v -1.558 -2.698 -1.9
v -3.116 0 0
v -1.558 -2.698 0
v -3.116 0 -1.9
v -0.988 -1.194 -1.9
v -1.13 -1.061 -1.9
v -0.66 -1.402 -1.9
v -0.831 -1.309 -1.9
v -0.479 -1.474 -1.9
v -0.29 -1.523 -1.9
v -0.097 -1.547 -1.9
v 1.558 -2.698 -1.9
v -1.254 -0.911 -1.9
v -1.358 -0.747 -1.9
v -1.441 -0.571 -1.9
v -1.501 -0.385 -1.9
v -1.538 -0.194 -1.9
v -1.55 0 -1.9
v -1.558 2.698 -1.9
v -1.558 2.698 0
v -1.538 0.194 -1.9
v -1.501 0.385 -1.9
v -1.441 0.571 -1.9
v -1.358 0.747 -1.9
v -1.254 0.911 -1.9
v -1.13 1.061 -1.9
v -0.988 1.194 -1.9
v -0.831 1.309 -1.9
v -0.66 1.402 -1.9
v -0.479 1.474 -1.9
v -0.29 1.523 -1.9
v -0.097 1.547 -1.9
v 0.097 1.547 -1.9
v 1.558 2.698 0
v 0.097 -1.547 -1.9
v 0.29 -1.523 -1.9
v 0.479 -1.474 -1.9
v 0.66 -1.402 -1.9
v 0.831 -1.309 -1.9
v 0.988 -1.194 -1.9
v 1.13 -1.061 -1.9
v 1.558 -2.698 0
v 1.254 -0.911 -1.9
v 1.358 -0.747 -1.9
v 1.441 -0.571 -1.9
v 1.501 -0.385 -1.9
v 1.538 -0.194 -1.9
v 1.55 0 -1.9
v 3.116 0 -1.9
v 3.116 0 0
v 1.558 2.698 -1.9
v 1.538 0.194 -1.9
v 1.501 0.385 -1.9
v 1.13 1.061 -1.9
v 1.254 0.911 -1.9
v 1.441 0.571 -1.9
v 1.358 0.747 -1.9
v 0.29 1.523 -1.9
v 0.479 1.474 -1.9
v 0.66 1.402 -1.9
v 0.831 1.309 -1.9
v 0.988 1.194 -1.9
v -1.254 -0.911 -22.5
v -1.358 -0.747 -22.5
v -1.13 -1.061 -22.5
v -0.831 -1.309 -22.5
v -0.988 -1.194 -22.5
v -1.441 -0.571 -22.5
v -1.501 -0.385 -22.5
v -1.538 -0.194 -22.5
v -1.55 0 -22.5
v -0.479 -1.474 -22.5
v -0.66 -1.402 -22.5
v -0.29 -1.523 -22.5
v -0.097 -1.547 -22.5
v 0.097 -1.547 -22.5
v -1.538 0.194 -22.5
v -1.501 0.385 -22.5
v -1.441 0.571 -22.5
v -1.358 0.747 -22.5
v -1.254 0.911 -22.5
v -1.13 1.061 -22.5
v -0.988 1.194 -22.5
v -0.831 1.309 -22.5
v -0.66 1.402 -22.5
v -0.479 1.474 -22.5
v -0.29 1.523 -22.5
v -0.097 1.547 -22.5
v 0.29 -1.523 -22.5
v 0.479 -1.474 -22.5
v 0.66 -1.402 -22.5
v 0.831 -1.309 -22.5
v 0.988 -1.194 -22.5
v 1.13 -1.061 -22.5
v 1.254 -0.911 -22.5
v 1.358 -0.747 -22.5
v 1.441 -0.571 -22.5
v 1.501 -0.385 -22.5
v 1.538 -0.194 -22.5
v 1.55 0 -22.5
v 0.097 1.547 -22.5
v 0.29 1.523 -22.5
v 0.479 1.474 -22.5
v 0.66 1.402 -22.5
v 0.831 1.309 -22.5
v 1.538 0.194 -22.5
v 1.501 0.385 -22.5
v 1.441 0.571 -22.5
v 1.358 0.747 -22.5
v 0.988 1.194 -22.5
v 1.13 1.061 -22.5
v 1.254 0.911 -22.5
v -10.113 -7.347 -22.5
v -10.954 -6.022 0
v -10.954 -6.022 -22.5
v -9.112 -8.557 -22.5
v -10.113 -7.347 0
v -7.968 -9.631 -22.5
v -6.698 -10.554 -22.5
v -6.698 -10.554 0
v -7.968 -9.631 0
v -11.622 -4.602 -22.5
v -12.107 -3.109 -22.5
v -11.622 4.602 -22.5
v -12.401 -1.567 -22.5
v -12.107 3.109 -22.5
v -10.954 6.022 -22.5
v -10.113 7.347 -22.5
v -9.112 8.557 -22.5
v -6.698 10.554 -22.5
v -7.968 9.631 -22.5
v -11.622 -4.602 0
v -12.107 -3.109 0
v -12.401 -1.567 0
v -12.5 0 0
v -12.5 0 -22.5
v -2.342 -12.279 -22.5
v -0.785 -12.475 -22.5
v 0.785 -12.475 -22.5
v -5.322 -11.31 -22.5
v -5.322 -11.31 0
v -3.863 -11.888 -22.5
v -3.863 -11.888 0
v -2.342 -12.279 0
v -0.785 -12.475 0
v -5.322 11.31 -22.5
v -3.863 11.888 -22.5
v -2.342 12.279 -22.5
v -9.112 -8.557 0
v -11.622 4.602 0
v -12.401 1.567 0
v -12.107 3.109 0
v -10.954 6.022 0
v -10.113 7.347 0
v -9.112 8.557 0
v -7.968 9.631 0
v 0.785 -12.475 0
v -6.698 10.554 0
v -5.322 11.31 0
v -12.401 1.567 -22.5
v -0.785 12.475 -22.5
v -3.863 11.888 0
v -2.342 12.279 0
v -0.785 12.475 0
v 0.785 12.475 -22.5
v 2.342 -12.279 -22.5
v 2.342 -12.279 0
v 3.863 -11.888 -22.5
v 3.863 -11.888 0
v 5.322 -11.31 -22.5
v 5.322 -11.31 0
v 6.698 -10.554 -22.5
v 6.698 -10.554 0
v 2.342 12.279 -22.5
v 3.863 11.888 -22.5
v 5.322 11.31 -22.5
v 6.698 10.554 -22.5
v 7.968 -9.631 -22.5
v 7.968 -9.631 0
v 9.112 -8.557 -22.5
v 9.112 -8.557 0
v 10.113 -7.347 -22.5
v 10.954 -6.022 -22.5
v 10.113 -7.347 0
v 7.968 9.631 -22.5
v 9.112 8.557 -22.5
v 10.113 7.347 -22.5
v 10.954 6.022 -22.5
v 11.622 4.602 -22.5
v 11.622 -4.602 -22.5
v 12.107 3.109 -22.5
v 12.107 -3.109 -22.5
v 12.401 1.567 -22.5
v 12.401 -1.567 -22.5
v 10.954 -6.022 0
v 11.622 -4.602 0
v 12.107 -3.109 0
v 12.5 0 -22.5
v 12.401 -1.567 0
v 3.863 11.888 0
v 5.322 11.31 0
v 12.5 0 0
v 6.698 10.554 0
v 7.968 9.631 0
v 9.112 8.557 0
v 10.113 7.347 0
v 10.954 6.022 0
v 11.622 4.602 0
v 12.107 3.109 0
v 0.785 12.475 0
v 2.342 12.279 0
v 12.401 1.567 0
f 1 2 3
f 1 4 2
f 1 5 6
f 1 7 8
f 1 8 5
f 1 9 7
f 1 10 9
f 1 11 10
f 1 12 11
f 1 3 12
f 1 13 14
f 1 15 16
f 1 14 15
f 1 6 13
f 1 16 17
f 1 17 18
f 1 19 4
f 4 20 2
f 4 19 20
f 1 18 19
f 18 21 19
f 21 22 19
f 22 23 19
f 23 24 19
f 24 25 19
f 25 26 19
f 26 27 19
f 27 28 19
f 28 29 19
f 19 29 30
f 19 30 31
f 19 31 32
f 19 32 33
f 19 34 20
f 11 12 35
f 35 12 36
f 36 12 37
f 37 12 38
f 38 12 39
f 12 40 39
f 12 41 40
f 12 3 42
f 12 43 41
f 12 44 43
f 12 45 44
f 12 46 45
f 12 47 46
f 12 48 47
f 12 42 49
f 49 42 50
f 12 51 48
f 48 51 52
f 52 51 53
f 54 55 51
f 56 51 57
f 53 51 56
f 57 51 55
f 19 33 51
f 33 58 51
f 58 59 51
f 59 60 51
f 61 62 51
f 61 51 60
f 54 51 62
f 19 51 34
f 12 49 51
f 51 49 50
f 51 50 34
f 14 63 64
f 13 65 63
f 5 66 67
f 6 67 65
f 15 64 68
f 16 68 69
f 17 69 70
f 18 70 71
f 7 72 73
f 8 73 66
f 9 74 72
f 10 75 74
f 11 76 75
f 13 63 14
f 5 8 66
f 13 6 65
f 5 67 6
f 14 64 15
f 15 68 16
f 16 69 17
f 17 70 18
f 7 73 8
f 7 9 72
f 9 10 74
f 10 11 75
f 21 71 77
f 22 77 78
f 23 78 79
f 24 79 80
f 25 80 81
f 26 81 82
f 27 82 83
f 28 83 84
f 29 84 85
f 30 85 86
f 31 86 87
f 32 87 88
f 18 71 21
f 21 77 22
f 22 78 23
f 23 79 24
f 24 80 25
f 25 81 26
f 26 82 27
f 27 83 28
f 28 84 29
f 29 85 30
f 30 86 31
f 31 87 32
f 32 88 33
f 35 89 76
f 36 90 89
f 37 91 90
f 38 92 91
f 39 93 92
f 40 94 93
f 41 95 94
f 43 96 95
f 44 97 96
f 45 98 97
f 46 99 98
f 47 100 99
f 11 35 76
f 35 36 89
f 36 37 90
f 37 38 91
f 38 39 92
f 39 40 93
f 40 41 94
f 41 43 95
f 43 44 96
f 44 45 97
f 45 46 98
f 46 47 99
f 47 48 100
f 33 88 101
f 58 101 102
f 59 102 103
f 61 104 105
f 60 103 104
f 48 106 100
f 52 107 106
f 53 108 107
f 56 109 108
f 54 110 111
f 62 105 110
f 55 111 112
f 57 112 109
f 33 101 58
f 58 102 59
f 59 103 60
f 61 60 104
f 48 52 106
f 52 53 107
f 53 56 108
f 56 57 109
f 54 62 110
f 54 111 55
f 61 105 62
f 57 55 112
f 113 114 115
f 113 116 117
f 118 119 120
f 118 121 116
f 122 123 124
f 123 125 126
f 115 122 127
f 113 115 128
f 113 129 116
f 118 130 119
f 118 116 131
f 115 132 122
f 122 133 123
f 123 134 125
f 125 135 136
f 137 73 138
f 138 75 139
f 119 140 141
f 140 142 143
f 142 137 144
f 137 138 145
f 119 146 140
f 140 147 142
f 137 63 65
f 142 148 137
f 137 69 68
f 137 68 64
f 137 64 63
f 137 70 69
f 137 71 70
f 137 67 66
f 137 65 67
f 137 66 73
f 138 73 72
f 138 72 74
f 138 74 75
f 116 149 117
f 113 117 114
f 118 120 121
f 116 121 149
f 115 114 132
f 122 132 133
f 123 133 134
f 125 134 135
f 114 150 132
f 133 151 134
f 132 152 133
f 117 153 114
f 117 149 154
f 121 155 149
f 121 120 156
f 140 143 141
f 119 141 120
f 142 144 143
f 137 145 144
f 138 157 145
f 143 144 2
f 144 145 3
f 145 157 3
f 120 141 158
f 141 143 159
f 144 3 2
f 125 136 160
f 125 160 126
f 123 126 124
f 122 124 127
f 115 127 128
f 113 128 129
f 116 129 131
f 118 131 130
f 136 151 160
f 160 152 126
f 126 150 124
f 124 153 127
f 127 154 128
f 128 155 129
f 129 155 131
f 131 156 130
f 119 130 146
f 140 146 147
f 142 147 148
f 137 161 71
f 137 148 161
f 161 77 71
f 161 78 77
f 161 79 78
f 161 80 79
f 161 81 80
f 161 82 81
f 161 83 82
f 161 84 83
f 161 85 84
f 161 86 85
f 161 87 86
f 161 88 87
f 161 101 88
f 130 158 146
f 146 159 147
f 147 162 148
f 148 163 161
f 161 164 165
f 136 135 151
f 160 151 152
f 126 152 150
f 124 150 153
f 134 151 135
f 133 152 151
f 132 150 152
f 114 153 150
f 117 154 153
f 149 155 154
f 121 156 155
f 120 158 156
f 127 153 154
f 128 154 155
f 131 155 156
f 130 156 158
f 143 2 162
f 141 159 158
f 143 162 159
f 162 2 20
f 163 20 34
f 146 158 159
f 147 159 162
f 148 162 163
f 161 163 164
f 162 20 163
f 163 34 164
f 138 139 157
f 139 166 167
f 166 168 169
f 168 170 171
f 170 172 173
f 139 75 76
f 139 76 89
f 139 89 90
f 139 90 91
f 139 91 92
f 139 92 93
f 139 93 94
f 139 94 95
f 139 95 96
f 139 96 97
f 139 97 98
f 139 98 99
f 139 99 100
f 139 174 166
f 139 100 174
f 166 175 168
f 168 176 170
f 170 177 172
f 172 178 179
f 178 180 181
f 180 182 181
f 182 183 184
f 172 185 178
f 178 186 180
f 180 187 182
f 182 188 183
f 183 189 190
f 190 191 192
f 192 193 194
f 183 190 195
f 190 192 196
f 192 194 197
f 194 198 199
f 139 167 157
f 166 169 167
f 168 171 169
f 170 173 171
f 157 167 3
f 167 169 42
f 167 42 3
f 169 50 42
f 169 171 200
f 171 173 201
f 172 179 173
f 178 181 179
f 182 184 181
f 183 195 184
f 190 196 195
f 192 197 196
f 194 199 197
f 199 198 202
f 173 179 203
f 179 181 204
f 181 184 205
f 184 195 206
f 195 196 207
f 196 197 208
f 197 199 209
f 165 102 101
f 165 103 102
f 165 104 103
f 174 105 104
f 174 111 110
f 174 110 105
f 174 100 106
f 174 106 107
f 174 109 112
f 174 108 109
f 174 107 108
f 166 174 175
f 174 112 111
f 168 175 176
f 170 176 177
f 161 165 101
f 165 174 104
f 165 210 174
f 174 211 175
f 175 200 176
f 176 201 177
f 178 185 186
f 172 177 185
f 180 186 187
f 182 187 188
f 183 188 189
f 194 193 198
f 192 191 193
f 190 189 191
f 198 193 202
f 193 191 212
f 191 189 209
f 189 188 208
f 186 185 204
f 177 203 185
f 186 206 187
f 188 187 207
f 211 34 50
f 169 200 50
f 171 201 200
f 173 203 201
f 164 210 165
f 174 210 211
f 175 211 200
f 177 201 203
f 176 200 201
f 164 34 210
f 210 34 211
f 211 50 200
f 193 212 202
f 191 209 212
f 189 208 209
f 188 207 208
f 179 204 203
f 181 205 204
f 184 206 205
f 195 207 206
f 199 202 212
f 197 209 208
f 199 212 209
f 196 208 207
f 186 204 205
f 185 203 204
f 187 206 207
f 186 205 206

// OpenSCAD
$fn = 50;

difference() {
	union() {
		translate(v = [0, 0, -22.5]) {
			cylinder(h = 22.5, r = 12.5);
		}
	}
	union() {
		translate(v = [0, 0, 0]) {
			rotate(a = [0, 0, 0]) {
				difference() {
					union() {
						translate(v = [0, 0, -1.9]) {
							linear_extrude(height = 1.9) {
								polygon(points = [[3.1158, 0.0], [1.5579000000000005, 2.698361953111554], [-1.5578999999999994, 2.6983619531115544], [-3.1158, 3.815754496783323e-16], [-1.5579000000000014, -2.6983619531115535], [1.557899999999998, -2.6983619531115552]]);
							}
						}
					}
					union();
				}
			}
		}
		#translate(v = [0, 0, -100.0]) {
			cylinder(h = 200, r = 1.55);
		}
	}
}
